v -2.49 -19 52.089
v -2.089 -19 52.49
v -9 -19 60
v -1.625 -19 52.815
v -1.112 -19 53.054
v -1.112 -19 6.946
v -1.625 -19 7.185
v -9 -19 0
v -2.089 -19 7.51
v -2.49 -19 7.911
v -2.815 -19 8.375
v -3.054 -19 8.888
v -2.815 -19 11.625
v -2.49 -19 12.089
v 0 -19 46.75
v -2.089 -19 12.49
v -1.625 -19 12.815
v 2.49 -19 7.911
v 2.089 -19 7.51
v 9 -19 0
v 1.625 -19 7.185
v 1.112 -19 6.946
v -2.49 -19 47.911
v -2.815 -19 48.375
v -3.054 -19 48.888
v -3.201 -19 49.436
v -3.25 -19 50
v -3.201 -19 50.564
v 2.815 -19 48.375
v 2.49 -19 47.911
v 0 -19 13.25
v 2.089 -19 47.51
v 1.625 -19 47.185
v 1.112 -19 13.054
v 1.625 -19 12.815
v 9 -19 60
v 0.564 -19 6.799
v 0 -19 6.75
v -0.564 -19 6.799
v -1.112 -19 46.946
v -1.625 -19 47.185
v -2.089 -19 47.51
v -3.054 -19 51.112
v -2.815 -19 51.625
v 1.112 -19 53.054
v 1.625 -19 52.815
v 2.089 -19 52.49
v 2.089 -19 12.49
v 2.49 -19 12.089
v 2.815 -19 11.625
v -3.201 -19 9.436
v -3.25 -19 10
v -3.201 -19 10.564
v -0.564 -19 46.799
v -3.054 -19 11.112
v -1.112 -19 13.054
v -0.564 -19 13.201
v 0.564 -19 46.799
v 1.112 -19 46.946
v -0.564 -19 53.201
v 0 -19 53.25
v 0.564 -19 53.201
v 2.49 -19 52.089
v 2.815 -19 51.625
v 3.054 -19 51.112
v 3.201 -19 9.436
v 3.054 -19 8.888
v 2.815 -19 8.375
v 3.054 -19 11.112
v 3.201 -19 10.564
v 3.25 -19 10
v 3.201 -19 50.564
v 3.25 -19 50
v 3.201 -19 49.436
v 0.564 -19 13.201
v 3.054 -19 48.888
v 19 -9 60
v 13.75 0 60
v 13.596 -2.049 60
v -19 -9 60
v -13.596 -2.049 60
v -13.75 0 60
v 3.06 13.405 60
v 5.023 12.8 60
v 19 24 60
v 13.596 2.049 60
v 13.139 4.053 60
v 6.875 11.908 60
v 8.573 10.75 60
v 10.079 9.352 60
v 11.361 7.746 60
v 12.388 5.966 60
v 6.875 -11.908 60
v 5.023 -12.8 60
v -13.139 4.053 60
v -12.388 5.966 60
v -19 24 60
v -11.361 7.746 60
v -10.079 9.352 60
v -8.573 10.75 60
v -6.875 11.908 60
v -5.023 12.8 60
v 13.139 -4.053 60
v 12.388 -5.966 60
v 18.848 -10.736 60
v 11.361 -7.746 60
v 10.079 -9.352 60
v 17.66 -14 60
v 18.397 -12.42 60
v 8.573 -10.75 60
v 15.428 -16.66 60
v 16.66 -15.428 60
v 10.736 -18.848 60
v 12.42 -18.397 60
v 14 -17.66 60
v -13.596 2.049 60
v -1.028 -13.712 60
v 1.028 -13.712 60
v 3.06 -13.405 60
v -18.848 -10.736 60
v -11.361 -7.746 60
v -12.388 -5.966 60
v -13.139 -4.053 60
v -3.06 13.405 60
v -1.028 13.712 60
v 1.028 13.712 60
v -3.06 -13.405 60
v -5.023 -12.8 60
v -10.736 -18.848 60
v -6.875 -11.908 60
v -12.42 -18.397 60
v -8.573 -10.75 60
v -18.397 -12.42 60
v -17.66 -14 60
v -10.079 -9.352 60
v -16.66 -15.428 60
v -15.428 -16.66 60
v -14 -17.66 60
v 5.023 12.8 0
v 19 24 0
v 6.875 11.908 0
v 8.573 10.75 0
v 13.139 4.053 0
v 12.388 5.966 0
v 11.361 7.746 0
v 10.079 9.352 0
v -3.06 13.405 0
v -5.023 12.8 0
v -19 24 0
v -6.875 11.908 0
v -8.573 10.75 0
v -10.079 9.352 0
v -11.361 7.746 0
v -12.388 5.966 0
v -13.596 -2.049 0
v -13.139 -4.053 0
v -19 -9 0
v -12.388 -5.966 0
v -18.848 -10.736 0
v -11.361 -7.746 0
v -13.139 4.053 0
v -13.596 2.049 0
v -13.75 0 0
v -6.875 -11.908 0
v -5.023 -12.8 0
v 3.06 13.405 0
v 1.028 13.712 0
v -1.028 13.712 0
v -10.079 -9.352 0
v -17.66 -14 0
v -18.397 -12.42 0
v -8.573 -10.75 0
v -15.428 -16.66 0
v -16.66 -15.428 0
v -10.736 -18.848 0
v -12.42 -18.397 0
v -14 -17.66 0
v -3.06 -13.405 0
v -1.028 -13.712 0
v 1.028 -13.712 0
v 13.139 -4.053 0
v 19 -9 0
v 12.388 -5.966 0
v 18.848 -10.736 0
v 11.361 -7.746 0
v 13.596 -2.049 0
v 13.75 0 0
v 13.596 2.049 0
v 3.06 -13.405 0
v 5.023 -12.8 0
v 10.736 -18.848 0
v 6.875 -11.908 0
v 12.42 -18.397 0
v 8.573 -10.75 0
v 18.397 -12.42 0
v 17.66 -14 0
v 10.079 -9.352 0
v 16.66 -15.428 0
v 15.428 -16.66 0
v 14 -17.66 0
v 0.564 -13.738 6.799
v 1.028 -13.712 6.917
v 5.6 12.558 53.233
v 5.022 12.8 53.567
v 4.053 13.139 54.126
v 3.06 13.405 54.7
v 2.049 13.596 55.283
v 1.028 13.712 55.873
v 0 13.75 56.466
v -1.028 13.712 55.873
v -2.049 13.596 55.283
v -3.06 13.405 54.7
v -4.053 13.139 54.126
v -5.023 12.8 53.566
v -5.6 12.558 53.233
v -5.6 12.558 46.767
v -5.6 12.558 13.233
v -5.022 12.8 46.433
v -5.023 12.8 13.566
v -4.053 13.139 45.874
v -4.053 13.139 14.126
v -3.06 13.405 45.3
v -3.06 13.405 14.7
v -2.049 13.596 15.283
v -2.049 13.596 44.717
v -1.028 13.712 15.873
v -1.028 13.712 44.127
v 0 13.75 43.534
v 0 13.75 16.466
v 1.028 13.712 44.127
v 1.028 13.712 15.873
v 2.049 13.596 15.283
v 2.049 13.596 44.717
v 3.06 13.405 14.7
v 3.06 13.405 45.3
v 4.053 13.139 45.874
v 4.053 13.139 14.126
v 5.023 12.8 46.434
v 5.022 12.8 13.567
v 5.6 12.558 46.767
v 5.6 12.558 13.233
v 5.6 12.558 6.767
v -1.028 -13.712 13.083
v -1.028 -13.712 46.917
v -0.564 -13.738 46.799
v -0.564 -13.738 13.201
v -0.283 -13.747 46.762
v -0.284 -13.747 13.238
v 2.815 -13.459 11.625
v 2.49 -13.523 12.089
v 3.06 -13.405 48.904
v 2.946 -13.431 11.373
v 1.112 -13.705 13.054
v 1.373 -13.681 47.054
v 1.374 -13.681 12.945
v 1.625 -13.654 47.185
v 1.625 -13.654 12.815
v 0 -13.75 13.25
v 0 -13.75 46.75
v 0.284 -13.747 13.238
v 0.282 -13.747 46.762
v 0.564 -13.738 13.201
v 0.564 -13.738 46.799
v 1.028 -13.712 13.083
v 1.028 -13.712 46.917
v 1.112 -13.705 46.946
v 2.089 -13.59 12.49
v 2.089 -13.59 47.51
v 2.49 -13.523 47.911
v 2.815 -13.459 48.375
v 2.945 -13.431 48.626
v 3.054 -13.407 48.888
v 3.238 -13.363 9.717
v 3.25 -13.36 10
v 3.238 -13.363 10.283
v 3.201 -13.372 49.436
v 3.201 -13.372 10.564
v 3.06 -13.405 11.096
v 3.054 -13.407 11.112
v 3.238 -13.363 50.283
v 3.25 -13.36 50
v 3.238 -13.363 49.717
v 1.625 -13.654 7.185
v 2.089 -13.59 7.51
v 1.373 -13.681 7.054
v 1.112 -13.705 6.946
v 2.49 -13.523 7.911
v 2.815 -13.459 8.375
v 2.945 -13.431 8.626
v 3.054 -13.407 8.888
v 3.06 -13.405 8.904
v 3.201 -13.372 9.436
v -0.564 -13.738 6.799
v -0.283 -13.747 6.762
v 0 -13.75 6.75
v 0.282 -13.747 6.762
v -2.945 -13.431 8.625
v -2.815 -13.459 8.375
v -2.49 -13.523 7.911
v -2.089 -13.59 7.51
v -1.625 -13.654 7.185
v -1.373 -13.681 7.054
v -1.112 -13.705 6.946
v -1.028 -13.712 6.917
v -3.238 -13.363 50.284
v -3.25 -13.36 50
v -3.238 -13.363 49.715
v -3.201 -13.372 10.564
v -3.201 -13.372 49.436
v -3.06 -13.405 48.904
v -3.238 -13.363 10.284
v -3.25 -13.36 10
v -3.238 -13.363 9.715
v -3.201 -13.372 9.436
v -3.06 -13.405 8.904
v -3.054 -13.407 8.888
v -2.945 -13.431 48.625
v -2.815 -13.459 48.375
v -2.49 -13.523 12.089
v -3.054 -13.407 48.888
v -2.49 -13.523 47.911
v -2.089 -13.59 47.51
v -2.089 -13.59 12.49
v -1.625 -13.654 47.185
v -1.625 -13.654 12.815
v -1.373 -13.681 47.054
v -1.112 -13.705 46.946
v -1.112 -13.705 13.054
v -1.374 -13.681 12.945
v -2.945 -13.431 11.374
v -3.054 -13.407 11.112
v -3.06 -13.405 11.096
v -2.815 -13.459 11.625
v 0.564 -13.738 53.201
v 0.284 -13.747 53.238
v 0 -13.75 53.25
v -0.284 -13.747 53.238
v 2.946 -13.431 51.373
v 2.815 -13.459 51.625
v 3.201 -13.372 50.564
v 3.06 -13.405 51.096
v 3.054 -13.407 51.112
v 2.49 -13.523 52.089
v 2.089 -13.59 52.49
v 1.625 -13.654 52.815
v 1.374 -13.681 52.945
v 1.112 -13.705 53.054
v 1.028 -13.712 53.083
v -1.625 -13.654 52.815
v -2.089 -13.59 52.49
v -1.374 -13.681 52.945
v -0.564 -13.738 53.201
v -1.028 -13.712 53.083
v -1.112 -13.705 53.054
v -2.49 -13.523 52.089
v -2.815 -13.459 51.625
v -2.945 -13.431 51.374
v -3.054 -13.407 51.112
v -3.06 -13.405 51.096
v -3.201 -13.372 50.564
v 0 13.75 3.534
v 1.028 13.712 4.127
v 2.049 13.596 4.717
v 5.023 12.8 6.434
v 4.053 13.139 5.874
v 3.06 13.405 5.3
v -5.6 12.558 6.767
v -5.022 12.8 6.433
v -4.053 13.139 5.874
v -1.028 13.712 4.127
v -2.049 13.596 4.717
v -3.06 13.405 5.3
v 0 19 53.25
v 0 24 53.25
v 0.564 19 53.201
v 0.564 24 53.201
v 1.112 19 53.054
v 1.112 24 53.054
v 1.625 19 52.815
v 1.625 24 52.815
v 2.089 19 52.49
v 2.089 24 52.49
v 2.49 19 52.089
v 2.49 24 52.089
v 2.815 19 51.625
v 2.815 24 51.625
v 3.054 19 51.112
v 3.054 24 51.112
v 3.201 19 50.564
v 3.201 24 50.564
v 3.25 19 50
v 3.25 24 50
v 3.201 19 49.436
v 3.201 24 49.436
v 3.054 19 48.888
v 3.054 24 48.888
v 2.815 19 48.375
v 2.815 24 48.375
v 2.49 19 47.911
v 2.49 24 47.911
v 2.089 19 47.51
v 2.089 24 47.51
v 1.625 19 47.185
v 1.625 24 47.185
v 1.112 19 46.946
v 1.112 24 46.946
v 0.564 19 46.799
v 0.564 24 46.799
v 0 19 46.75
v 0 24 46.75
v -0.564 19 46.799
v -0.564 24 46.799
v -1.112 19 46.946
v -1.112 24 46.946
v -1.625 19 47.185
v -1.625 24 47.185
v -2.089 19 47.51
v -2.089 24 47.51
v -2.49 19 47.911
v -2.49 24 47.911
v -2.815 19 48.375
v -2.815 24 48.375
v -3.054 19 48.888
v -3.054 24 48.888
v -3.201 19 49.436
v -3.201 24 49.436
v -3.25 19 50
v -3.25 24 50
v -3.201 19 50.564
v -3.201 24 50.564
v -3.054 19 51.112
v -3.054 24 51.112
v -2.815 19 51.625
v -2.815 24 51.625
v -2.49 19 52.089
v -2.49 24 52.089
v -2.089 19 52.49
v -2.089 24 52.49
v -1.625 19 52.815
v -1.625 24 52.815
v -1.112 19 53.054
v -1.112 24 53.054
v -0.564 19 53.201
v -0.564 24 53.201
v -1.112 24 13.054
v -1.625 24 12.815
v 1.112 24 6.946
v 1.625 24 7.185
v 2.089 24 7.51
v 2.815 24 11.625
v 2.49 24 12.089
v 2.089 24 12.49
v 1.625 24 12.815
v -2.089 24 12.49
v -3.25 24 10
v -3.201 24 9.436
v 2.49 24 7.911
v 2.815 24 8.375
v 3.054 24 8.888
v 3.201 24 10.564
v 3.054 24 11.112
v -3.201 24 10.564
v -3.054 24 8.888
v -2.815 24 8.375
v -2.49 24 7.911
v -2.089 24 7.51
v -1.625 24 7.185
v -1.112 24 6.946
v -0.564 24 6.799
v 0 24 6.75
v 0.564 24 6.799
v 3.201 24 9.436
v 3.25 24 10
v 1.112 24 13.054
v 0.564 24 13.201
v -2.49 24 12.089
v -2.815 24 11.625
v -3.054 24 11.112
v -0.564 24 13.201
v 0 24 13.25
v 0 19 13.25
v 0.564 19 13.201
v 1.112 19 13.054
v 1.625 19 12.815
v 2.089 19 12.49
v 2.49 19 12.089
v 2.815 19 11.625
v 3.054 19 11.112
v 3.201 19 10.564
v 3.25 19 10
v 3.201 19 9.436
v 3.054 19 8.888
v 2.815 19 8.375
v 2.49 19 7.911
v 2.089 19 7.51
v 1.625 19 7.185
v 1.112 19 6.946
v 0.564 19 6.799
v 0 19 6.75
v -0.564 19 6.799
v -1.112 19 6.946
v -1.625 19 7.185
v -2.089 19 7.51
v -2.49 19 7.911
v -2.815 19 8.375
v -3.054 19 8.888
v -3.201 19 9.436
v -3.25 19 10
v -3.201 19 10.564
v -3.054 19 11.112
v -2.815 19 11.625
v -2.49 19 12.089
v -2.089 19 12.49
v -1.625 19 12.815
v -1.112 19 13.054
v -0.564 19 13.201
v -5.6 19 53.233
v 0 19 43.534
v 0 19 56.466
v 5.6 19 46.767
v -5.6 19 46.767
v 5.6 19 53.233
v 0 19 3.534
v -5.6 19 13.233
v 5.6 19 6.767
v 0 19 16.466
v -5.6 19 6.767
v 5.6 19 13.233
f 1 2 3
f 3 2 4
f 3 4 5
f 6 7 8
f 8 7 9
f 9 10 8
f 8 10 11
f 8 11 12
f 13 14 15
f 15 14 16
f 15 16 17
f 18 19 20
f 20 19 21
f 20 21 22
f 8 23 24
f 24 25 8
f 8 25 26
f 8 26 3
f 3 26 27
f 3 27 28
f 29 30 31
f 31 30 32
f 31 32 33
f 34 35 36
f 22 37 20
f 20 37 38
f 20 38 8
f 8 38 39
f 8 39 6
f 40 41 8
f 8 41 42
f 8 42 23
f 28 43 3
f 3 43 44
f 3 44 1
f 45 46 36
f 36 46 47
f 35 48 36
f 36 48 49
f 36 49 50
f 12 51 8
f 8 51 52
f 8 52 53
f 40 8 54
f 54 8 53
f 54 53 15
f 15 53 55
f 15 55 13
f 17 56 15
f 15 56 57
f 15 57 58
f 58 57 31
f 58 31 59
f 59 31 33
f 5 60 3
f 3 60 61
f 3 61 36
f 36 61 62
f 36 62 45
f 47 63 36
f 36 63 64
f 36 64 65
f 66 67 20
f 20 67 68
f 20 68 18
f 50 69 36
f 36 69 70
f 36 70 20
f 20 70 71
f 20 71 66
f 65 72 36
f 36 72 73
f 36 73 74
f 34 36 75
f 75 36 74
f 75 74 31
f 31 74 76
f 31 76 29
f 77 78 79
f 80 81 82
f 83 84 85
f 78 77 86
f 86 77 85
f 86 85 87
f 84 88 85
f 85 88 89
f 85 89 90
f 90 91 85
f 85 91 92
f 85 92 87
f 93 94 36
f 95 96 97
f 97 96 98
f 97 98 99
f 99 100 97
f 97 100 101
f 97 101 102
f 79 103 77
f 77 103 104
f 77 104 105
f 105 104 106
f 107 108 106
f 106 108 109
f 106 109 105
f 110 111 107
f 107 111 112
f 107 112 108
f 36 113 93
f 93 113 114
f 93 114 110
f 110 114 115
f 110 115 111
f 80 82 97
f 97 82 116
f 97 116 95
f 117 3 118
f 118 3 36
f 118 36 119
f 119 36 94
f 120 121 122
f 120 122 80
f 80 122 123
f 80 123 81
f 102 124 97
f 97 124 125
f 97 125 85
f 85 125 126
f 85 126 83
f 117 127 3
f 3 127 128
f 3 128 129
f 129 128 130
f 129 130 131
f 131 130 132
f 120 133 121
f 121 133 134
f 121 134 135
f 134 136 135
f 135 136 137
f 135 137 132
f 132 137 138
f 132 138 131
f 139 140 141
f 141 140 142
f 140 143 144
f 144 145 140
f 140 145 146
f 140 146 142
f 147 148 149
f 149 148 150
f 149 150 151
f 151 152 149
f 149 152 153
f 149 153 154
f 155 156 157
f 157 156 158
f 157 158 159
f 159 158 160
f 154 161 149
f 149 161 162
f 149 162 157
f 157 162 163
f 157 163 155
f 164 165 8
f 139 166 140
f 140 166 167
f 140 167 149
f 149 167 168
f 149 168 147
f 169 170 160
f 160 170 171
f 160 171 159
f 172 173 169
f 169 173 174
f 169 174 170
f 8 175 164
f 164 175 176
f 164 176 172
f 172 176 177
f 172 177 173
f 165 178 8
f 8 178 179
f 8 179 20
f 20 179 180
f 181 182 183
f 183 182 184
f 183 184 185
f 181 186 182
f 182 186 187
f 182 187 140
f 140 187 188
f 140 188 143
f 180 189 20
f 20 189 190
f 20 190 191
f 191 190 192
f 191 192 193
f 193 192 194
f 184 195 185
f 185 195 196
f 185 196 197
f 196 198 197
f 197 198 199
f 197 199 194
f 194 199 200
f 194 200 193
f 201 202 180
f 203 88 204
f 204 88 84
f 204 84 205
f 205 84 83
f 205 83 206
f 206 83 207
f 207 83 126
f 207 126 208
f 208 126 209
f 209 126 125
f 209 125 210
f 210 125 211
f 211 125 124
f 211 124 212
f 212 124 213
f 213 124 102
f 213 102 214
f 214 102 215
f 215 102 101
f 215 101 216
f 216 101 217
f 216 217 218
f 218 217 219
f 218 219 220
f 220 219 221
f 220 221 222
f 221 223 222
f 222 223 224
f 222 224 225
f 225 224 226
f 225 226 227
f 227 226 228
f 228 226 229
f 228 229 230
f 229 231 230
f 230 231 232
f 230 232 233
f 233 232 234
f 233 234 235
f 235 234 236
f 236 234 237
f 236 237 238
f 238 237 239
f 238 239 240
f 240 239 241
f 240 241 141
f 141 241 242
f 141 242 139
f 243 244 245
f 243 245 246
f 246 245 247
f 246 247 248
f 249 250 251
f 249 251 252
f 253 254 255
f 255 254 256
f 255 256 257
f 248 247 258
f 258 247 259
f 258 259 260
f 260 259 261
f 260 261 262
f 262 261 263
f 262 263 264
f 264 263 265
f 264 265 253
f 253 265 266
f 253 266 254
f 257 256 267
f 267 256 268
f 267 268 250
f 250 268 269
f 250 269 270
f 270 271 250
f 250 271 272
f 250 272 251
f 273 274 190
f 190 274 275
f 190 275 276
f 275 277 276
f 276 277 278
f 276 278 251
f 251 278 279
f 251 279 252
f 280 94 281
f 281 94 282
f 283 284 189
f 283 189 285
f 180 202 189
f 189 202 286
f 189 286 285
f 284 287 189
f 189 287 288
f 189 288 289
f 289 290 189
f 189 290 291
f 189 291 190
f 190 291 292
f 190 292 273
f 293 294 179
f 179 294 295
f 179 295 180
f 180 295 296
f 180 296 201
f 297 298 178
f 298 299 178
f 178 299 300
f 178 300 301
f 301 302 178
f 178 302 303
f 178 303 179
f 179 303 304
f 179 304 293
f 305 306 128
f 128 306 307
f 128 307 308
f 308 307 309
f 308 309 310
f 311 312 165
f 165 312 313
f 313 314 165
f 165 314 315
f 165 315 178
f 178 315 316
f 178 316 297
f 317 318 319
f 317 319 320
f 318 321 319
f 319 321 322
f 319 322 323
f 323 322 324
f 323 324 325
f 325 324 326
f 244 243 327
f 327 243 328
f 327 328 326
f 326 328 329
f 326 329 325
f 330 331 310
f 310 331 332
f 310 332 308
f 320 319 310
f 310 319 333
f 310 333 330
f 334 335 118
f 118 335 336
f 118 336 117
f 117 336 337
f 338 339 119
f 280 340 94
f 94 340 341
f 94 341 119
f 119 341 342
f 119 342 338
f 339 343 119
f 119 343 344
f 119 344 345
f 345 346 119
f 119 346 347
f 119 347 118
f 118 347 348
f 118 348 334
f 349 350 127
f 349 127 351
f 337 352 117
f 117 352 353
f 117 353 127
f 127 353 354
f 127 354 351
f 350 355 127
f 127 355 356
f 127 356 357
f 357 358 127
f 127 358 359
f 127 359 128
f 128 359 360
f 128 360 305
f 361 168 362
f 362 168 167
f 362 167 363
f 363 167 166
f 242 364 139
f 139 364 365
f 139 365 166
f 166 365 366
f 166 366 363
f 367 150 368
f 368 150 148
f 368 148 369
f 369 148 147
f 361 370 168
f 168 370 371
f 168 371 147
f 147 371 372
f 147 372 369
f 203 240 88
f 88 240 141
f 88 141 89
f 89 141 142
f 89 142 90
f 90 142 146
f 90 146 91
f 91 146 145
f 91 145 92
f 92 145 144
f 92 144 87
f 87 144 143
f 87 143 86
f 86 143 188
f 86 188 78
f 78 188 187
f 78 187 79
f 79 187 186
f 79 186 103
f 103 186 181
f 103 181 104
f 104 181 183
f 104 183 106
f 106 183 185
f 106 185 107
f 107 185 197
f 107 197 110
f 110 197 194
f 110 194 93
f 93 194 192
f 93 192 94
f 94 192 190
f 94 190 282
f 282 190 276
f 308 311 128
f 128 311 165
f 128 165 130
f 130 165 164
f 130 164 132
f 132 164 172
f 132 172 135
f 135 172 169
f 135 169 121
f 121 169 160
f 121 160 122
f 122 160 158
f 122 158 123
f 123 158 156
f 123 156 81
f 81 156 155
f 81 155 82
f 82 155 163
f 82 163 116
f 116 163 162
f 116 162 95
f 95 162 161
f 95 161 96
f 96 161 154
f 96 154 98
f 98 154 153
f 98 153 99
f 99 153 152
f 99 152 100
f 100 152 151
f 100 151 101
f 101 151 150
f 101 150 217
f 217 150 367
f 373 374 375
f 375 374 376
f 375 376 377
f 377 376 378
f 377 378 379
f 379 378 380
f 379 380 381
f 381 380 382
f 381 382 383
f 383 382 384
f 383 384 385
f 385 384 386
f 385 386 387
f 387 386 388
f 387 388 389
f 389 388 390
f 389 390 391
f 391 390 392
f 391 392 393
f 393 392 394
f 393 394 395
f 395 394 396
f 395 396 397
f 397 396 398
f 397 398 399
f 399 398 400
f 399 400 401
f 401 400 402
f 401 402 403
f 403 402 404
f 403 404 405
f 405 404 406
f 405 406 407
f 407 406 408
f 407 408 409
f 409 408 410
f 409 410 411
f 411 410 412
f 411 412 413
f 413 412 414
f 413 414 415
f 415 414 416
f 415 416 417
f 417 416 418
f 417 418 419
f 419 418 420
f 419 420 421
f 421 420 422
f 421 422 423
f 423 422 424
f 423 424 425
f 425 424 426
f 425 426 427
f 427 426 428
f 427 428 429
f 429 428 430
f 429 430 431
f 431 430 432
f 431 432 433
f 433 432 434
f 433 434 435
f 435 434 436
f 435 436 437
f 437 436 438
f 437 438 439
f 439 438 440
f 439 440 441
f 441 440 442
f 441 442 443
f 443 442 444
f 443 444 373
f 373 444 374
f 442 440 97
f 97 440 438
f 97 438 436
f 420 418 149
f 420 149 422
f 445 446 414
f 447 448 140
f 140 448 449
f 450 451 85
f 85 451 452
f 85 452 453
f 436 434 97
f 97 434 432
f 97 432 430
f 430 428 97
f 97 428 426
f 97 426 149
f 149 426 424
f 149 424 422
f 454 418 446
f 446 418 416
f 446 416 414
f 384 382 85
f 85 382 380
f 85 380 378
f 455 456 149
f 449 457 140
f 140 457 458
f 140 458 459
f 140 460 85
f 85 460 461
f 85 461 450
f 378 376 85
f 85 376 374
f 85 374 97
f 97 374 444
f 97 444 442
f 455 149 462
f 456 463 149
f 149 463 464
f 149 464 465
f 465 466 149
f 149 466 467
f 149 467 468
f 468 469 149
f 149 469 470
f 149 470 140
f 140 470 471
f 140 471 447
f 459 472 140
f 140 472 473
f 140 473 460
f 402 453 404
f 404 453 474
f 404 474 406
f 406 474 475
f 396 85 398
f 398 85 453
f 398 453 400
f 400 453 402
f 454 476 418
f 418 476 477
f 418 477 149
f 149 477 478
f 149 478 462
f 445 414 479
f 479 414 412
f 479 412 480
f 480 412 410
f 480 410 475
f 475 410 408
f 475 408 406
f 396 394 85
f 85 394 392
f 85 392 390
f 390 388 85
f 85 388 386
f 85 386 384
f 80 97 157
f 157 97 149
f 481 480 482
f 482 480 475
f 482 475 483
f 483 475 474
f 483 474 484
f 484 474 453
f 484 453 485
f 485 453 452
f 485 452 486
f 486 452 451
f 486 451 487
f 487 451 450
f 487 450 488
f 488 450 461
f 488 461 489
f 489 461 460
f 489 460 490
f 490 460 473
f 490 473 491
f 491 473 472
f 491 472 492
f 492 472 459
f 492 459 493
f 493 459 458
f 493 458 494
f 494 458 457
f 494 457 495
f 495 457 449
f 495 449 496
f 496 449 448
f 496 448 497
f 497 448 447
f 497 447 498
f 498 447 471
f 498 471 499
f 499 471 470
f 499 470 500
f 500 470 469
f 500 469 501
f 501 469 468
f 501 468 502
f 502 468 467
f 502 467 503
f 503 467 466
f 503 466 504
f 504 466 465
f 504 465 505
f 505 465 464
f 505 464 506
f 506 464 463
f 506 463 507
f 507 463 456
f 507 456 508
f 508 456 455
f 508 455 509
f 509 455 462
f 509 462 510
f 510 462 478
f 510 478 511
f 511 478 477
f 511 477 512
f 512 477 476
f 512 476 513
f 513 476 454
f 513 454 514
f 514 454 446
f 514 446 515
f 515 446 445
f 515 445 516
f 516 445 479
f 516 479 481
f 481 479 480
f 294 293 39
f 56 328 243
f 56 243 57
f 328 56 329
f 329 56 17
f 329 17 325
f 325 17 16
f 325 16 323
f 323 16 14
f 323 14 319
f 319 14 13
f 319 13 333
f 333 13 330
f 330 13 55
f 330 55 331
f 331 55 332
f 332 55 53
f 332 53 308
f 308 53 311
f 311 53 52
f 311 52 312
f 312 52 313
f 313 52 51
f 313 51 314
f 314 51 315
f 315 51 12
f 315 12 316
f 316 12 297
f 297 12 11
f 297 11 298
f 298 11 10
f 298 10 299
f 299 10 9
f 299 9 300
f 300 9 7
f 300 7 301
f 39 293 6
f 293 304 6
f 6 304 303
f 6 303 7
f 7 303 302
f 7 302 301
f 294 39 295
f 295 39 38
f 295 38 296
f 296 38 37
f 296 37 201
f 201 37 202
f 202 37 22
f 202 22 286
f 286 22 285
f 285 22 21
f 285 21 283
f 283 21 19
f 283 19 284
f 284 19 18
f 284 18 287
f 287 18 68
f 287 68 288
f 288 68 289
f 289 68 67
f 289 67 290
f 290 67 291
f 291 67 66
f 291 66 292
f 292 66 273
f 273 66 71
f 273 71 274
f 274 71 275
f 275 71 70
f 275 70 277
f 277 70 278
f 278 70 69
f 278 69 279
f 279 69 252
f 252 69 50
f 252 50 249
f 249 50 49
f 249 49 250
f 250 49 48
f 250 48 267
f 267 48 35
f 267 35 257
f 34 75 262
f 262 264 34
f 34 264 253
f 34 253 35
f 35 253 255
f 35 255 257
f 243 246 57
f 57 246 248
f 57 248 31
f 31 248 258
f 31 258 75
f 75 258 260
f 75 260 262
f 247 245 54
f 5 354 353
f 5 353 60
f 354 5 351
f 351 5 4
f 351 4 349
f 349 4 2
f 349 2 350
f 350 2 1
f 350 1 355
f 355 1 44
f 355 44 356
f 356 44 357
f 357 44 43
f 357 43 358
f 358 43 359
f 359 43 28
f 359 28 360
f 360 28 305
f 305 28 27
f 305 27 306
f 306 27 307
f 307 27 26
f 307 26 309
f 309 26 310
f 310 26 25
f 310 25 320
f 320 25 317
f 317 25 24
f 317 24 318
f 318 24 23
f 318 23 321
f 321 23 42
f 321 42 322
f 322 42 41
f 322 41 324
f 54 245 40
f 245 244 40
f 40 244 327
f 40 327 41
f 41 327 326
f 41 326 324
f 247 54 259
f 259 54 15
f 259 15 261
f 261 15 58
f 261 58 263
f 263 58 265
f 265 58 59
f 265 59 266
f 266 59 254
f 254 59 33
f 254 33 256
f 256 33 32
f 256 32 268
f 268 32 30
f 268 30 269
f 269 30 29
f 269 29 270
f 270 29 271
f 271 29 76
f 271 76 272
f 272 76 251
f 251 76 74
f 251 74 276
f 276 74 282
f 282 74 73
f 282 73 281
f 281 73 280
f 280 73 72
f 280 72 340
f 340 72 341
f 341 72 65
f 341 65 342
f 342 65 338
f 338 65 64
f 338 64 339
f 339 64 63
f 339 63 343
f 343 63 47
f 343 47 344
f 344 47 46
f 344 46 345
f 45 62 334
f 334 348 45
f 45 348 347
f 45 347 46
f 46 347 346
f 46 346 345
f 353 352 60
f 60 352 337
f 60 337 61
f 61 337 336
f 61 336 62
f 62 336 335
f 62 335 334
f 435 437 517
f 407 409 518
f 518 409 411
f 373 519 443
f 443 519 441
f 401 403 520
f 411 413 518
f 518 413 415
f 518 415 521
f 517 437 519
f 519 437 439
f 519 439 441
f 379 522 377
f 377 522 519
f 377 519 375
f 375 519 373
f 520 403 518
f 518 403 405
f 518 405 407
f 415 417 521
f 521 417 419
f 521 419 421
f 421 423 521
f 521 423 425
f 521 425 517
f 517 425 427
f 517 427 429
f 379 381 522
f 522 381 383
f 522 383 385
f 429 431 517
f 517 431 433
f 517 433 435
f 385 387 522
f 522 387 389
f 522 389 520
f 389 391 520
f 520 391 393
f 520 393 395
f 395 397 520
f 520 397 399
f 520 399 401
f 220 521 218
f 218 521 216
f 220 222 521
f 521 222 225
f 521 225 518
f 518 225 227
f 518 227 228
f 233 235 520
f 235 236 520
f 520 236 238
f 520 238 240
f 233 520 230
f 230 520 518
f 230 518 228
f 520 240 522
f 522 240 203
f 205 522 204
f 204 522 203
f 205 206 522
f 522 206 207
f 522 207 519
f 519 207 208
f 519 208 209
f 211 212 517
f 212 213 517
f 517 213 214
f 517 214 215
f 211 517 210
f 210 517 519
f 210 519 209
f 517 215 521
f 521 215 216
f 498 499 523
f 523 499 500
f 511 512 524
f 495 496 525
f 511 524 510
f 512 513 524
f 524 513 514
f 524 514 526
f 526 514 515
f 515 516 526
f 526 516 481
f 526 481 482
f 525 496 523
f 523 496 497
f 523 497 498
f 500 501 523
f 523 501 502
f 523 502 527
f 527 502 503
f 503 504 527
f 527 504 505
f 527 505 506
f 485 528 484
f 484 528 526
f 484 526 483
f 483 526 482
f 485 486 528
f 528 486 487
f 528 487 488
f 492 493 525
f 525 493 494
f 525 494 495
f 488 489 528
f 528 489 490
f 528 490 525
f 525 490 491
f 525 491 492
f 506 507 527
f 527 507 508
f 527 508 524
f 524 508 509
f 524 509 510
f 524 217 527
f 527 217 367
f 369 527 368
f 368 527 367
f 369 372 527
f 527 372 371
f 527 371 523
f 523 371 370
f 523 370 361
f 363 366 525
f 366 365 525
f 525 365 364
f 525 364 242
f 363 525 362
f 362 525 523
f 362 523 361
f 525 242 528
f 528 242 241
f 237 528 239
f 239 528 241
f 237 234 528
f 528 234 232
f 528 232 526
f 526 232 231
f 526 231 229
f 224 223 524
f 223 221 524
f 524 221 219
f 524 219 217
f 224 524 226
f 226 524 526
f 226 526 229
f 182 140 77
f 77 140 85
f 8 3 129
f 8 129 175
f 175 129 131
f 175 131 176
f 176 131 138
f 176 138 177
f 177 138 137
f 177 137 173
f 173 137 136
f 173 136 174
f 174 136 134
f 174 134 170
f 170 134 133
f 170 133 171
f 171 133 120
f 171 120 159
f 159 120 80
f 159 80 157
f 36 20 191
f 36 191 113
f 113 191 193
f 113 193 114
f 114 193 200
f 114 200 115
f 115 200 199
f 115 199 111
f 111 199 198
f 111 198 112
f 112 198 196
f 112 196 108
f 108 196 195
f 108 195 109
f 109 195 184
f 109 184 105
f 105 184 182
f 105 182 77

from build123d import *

# Parameters (mm, degrees)
SKETCH1_W           = 43
SKETCH1_H           = 43
SKETCH1_R           = 13.75
SKETCH1_H_2         = 7
BOSS_EXTRUDE1_DEPTH = 60
SKETCH3_R           = 3.25
CUT_EXTRUDE5_DEPTH  = 85.038324591
CHAMFER2_SIZE       = 2.5
CUT_EXTRUDE6_START  = -38
CUT_EXTRUDE6_DEPTH  = 15
SKETCH8_W           = 10
SKETCH8_H           = 51.2
CUT_EXTRUDE8_DEPTH  = 75.012431469
FILLET2_R           = 10


with BuildPart() as part:
    # Sketch1 → Boss-Extrude1 (new body)
    # profile 1 of 3: a face of its own
    with BuildSketch(Plane.XY):
        with Locations((2.5, 2.5)):
            Rectangle(SKETCH1_W, SKETCH1_H)
        Circle(SKETCH1_R, mode=Mode.SUBTRACT)
    # profile 2 of 3: a face of its own
    with BuildSketch(Plane.XY):
        with Locations((2.5, 28.7)):
            Rectangle(SKETCH1_W, SKETCH1_H_2)
    # profile 3 of 3: a face of its own
    with BuildSketch(Plane.XY):
        Polygon((24, 24), (24, -19), (29, -19), (29, 32.2), (24, 32.2), (24, 25.2), align=None)
    extrude(amount=BOSS_EXTRUDE1_DEPTH)

    # Sketch3 → Cut-Extrude5 (cut, through all)
    with BuildSketch(Plane(origin=(0, 32.2, 0), x_dir=(1, 0, 0), z_dir=(0, 1, 0))):
        with Locations(Location((0, -50, 0), (0, 0, 270))):
            Circle(SKETCH3_R)
        with Locations(Location((0, -10, 0), (0, 0, 270))):
            Circle(SKETCH3_R)
    extrude(amount=-CUT_EXTRUDE5_DEPTH, mode=Mode.SUBTRACT)

    # Chamfer2
    chamfer2_edges = [part.edges().sort_by_distance(p)[0] for p in [
        (0, 32.2, 46.75),
        (0, 32.2, 6.75),
    ]]
    chamfer(chamfer2_edges, length=CHAMFER2_SIZE)

    # Sketch7 → Cut-Extrude6 (cut)
    with BuildSketch(Plane.XZ.offset(19).offset(CUT_EXTRUDE6_START)):
        Polygon((0, 43.533676985), (5.6, 46.766838493), (5.6, 53.233161507), (0, 56.466323015), (-5.6, 53.233161507), (-5.6, 46.766838493), align=None)
        Polygon((-5.6, 13.233161507), (0, 16.466323015), (5.6, 13.233161507), (5.6, 6.766838493), (0, 3.533676985), (-5.6, 6.766838493), align=None)
    extrude(amount=CUT_EXTRUDE6_DEPTH, mode=Mode.SUBTRACT)

    # Sketch8 → Cut-Extrude8 (cut, through all)
    with BuildSketch(Plane(origin=(0, 0, 0), x_dir=(-1, 0, 0), z_dir=(0, 0, -1))):
        with Locations((-24, 6.6)):
            Rectangle(SKETCH8_W, SKETCH8_H)
    extrude(amount=-CUT_EXTRUDE8_DEPTH, mode=Mode.SUBTRACT)


with BuildPart() as body_2:
    # of the pieces the cut leaves, the one that is kept (cut_extrude8_keep)
    add(part.part.solids().sort_by_distance((-19, 24, 0))[0])

    # Fillet2
    fillet2_edges = [body_2.edges().sort_by_distance(p)[0] for p in [
        (-19, -19, 30),
        (19, -19, 30),
    ]]
    fillet(fillet2_edges, radius=FILLET2_R)


solid = body_2.part
